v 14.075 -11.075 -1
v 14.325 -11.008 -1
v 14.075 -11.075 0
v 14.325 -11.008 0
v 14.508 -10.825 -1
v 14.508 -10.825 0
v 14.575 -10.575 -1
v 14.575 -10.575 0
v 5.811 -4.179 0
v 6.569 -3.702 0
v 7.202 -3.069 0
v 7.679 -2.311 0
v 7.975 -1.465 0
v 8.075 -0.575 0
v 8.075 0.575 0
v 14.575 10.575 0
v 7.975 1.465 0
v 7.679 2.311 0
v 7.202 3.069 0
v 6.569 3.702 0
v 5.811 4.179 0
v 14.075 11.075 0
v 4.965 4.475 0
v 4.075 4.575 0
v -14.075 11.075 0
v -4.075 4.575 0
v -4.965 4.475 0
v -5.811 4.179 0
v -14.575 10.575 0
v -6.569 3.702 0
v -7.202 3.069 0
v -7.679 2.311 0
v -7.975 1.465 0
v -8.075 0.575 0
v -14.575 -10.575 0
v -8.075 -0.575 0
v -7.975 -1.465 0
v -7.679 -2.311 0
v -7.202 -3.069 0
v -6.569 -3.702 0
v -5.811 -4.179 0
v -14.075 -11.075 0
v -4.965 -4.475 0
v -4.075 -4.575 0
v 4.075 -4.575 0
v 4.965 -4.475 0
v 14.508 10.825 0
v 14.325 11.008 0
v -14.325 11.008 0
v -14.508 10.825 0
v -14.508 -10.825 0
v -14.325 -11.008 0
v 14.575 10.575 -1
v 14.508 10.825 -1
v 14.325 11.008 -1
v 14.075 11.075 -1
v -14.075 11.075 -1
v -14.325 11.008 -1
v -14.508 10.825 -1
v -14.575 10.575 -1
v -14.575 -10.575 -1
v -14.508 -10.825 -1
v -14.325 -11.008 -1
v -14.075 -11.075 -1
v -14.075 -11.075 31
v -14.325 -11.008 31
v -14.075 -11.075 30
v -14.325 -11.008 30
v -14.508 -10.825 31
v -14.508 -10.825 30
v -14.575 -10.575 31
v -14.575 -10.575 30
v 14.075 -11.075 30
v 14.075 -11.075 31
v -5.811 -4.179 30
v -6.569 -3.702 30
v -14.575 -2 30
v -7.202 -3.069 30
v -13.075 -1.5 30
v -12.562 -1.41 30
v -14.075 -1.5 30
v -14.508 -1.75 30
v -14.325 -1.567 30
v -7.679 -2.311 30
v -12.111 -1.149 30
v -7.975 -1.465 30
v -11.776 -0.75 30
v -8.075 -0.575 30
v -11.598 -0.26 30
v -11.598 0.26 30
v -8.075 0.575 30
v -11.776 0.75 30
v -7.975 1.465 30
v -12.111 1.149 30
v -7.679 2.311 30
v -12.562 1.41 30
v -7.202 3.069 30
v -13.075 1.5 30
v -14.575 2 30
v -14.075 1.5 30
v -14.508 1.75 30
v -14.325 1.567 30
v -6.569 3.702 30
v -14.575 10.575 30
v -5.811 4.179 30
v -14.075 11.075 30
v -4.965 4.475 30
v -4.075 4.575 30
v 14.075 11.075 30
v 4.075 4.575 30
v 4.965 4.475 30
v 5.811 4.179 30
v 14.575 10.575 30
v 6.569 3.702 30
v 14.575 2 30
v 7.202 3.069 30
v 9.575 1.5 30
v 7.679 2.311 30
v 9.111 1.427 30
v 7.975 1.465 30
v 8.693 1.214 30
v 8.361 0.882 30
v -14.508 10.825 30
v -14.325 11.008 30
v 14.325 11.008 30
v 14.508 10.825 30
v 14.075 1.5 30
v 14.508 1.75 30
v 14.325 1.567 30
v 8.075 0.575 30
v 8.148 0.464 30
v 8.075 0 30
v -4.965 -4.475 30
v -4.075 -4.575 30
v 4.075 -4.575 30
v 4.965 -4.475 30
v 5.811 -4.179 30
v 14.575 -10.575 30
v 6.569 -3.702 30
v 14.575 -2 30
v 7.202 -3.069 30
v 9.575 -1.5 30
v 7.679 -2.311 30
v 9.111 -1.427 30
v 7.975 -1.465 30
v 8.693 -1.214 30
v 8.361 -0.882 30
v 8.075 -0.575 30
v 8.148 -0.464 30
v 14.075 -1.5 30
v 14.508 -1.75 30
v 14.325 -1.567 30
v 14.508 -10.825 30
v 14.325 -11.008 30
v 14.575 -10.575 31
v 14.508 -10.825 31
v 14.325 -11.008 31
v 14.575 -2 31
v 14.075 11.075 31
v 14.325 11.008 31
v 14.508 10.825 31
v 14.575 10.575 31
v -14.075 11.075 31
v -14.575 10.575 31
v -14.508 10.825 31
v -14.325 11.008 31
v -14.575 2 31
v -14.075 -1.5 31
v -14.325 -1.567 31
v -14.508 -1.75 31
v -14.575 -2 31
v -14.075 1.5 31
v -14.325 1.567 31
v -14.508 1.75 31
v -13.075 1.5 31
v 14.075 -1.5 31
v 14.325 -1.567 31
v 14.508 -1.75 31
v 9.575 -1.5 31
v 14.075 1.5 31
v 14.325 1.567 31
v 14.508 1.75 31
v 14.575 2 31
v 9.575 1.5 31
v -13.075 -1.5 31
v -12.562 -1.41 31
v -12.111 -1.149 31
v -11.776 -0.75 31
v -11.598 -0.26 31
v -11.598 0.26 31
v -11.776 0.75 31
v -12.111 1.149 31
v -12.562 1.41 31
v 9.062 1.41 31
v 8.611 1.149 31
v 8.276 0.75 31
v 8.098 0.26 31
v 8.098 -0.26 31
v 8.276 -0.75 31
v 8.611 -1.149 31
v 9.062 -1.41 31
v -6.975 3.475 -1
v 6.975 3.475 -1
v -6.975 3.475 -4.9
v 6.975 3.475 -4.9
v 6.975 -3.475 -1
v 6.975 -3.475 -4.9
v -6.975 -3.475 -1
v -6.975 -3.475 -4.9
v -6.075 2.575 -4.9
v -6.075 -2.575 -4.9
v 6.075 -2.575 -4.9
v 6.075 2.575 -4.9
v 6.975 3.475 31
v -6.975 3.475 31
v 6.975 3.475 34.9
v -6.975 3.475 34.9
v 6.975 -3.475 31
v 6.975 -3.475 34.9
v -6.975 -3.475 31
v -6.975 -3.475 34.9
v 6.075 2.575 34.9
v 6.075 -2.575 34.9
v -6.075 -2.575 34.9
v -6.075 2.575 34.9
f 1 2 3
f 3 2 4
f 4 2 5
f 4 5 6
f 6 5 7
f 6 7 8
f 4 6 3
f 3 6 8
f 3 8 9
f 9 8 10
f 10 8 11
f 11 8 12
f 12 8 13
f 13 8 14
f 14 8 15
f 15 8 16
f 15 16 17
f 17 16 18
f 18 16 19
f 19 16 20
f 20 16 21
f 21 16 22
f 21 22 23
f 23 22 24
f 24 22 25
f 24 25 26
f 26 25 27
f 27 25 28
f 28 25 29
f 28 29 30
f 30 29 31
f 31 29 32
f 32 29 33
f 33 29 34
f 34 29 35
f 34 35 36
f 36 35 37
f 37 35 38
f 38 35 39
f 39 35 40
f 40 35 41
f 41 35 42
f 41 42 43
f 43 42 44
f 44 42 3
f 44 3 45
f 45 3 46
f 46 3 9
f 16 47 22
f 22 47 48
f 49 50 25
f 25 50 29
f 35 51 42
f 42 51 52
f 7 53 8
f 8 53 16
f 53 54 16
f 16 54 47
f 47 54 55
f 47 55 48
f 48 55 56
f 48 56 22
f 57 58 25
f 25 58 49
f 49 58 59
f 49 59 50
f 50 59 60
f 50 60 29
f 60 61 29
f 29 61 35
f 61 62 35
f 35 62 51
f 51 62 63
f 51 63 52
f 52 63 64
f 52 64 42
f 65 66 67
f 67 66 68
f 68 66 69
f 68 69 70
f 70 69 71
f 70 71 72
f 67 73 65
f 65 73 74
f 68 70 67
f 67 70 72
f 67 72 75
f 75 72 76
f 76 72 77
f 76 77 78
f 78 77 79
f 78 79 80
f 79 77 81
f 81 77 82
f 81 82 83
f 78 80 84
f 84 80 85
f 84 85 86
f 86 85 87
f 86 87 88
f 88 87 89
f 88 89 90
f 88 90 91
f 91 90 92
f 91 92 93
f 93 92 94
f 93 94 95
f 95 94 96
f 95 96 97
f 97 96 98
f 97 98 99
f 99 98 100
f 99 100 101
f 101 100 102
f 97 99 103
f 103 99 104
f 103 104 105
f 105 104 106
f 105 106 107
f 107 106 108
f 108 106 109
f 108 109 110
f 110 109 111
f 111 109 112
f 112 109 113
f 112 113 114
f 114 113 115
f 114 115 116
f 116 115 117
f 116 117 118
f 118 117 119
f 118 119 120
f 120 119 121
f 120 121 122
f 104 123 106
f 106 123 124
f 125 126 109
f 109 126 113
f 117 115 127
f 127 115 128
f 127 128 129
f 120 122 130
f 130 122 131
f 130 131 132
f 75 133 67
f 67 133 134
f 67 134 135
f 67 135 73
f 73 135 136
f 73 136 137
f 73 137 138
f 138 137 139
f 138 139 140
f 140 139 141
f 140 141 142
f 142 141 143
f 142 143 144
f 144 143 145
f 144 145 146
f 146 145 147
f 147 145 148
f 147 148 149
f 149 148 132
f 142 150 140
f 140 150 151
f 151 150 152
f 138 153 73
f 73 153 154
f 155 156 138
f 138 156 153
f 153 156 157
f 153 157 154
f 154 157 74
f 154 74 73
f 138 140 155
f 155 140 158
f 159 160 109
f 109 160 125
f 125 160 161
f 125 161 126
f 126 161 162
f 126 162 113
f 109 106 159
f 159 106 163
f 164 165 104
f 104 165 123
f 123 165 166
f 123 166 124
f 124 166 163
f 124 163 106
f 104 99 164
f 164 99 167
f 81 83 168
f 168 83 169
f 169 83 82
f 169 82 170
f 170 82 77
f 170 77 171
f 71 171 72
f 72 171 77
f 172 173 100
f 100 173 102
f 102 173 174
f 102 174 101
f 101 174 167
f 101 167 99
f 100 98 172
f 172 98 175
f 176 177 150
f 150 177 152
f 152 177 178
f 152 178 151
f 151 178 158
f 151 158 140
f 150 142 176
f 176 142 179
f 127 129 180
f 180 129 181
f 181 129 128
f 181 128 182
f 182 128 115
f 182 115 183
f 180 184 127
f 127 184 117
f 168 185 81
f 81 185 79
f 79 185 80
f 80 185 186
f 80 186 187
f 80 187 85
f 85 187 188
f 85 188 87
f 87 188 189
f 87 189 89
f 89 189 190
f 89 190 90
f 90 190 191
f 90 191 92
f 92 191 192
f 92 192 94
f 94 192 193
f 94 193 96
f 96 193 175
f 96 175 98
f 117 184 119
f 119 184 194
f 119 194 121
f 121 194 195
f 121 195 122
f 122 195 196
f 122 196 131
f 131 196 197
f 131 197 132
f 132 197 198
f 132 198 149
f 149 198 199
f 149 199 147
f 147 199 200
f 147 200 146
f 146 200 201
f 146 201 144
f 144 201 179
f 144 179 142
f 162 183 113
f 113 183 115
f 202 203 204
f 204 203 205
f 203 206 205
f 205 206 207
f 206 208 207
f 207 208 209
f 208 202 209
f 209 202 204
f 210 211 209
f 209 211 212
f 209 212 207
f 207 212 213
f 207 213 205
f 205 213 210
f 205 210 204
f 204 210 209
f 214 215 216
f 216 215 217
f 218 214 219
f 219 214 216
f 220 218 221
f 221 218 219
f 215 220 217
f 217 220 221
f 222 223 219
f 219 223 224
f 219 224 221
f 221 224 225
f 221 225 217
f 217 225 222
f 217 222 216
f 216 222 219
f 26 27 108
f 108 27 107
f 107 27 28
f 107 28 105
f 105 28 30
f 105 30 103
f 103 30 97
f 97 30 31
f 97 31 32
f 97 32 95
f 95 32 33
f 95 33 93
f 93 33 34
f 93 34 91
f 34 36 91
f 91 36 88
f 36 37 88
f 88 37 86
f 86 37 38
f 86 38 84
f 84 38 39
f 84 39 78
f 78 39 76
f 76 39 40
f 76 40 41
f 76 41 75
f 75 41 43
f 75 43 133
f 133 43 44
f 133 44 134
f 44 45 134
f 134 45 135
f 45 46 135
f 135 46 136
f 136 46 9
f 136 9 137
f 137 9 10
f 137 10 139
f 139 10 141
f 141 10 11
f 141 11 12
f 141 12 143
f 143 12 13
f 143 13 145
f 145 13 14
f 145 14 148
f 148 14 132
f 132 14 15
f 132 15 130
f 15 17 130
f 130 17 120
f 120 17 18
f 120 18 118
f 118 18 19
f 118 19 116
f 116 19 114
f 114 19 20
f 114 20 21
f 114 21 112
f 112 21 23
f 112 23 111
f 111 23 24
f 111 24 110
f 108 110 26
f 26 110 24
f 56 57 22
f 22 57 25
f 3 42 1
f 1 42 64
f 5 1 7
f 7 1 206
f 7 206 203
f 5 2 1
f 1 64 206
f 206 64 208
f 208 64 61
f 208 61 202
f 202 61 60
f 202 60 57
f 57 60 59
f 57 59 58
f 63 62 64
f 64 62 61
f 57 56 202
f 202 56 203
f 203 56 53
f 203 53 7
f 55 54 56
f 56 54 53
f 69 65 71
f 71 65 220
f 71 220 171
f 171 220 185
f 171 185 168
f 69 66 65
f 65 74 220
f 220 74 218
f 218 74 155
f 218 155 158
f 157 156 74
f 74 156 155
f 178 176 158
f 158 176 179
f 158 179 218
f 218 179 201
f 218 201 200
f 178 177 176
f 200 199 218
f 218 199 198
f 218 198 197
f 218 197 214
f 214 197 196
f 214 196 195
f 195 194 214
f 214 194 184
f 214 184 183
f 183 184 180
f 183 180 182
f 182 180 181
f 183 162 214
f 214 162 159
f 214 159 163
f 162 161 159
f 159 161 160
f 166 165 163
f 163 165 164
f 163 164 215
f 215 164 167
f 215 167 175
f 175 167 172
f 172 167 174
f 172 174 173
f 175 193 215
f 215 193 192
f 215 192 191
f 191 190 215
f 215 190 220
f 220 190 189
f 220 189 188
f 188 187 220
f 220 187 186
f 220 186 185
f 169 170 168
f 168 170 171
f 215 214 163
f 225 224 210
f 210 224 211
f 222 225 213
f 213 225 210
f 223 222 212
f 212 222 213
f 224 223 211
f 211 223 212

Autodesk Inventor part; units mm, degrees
ref_plane "YZ Plane" through (0, 0, 0) normal (1, 0, 0) x (0, 1, 0)
ref_plane "XZ Plane" through (0, 0, 0) normal (0, 1, 0) x (-1, 0, 0)
sketch "Sketch1" plane through (0, 0, 0) normal (0, 0, 1) x (1, 0, 0)
  line L0 (-6.075, -2.575) -> (6.075, -2.575)
  line L1 (6.075, -2.575) -> (6.075, 2.575)
  line L2 (6.075, 2.575) -> (-6.075, 2.575)
  line L3 (-6.075, 2.575) -> (-6.075, -2.575)
  line L4 (-6.075, -2.575) -> (6.075, 2.575) construction
  line L5 (6.075, -2.575) -> (-6.075, 2.575) construction
  line L6 (-8.075, 4.575) -> (8.075, 4.575)
  line L7 (8.075, 4.575) -> (8.075, -4.575)
  line L8 (8.075, -4.575) -> (-8.075, -4.575)
  line L9 (-8.075, -4.575) -> (-8.075, 4.575)
  point P0 (0, 0)
  dimension "d0" = 5.15
  dimension "d1" = 12.15
  dimension "d2" = 2
extrude "Extrusion1" add sketch "Sketch1" along normal blind 30
sketch "Sketch2" plane through (0, 0, 30) normal (0, 0, 1) x (1, 0, 0)
  line L0 (14.575, -11.075) -> (-14.575, -11.075)
  line L1 (-14.575, -11.075) -> (-14.575, 11.075)
  line L2 (-14.575, 11.075) -> (14.575, 11.075)
  line L3 (14.575, 11.075) -> (14.575, -11.075)
  line L4 (14.575, -11.075) -> (-14.575, 11.075) construction
  line L5 (-14.575, -11.075) -> (14.575, 11.075) construction
  line L6 (8.075, 4.575) -> (-8.075, 4.575) construction
  line L7 (-8.075, 4.575) -> (-8.075, -4.575) construction
  line L8 (8.075, -4.575) -> (8.075, 4.575) construction
  line L9 (-6.075, -2.575) -> (-6.075, 2.575) projected
  line L10 (-6.075, 2.575) -> (6.075, 2.575) projected
  line L11 (6.075, 2.575) -> (6.075, -2.575) projected
  line L12 (6.075, -2.575) -> (-6.075, -2.575) projected
  line L13 (8.075, 4.575) -> (-8.075, 4.575) projected
  line L14 (-8.075, 4.575) -> (-8.075, -4.575) projected
  line L15 (-8.075, -4.575) -> (8.075, -4.575) construction
  line L16 (8.075, -4.575) -> (8.075, 4.575) projected
  point P0 (0, 0)
  dimension "d5" = 6.5
  dimension "d6" = 6.5
extrude "Extrusion2" add sketch "Sketch2" along normal blind 1
ref_plane "Work Plane1" through (0, 0, 15) normal (0, 0, -1) x (-1, 0, 0)
mirror "Mirror1" about plane through (0, 0, 15) normal (0, 0, -1) of "Extrusion2"
fillet "Fillet1" radius 4 4 edges at (8.075, 4.575, 15) (8.075, -4.575, 15) (-8.075, -4.575, 15) (-8.075, 4.575, 15)
sketch "Sketch3" plane through (0, 0, 31) normal (0, 0, 1) x (1, 0, 0)
  line L0 (6.075, 2.575) -> (6.075, -2.575) projected
  line L1 (-6.075, 2.575) -> (6.075, 2.575) projected
  line L2 (-6.075, -2.575) -> (-6.075, 2.575) projected
  line L3 (6.075, -2.575) -> (-6.075, -2.575) projected
  line L4 (-6.975, -3.475) -> (-6.975, 3.475)
  line L5 (-6.975, 3.475) -> (6.975, 3.475)
  line L6 (6.975, 3.475) -> (6.975, -3.475)
  line L7 (6.975, -3.475) -> (-6.975, -3.475)
  point P0 (0, 0)
  dimension "d10" = 0.9
extrude "Extrusion3" add sketch "Sketch3" along normal blind 3.9
mirror "Mirror2" about plane through (0, 0, 15) normal (0, 0, -1) of "Extrusion3"
sketch "Sketch5" plane through (0, 0, 30) normal (0, 0, -1) x (-1, 0, 0)
  line L0 (-8.075, -0.575) -> (-8.075, 0.575) construction
  line L1 (-20.405, 0) -> (20.405, 0) construction
  line L2 (-8.075, -1.5) -> (-14.575, -1.5) construction
  line L3 (-14.575, -1.5) -> (-14.575, 1.5) construction
  line L4 (-14.575, 1.5) -> (-8.075, 1.5) construction
  line L5 (-8.075, 1.5) -> (-8.075, -1.5) construction
  line L6 (-8.075, -1.5) -> (-14.575, 1.5) construction
  line L7 (-14.575, -1.5) -> (-8.075, 1.5) construction
  line L8 (-14.575, -11.075) -> (-14.575, 11.075) construction
  arc A0 (-9.575, -1.5) -> (-9.575, 1.5) centre (-9.575, 0) ccw
  line L9 (-9.575, 1.5) -> (-14.575, 1.5)
  line L10 (-14.575, 1.5) -> (-14.575, -1.5)
  line L11 (-14.575, -1.5) -> (-9.575, -1.5)
  line L12 (-9.575, 0) -> (-9.575, 1.9655) construction
  line L13 (11.575, 3.0291) -> (11.575, -4.4188) construction
  line L14 (14.575, 11.075) -> (14.575, -11.075) construction
  line L15 (14.575, -1.5) -> (11.575, -1.5) construction
  line L16 (11.575, -1.5) -> (11.575, 1.5) construction
  line L17 (11.575, 1.5) -> (14.575, 1.5) construction
  line L18 (14.575, 1.5) -> (14.575, -1.5) construction
  line L19 (14.575, -1.5) -> (11.575, 1.5) construction
  line L20 (11.575, -1.5) -> (14.575, 1.5) construction
  arc A1 (13.075, 1.5) -> (13.075, -1.5) centre (13.075, 0) ccw
  line L21 (13.075, 1.5) -> (14.575, 1.5)
  line L22 (14.575, 1.5) -> (14.575, -1.5)
  line L23 (14.575, -1.5) -> (13.075, -1.5)
  point P0 (0, 0)
  point P1 (-11.325, 0)
  dimension "d13" = 3
  dimension "d14" = 1.5
  dimension "d15" = 3
  dimension "d16" = 1.5
  dimension "d17" = 3
extrude "Extrusion4" cut sketch "Sketch5" against normal through all
fillet "Fillet2" radius 0.5 12 edges at (14.575, 1.5, 30.5) (14.575, -1.5, 30.5) (-14.575, 1.5, 30.5) (-14.575, -1.5, 30.5) (-14.575, 11.075, 30.5) (14.575, 11.075, 30.5) (14.575, -11.075, 30.5) (-14.575, -11.075, 30.5) (-14.575, -11.075, -0.5) (-14.575, 11.075, -0.5) (14.575, 11.075, -0.5) (14.575, -11.075, -0.5)
equation "\"d2\" = ep"
equation "\"ep\" = 2"
properties part number "kicker_tube" material "Nylon 6/6"
